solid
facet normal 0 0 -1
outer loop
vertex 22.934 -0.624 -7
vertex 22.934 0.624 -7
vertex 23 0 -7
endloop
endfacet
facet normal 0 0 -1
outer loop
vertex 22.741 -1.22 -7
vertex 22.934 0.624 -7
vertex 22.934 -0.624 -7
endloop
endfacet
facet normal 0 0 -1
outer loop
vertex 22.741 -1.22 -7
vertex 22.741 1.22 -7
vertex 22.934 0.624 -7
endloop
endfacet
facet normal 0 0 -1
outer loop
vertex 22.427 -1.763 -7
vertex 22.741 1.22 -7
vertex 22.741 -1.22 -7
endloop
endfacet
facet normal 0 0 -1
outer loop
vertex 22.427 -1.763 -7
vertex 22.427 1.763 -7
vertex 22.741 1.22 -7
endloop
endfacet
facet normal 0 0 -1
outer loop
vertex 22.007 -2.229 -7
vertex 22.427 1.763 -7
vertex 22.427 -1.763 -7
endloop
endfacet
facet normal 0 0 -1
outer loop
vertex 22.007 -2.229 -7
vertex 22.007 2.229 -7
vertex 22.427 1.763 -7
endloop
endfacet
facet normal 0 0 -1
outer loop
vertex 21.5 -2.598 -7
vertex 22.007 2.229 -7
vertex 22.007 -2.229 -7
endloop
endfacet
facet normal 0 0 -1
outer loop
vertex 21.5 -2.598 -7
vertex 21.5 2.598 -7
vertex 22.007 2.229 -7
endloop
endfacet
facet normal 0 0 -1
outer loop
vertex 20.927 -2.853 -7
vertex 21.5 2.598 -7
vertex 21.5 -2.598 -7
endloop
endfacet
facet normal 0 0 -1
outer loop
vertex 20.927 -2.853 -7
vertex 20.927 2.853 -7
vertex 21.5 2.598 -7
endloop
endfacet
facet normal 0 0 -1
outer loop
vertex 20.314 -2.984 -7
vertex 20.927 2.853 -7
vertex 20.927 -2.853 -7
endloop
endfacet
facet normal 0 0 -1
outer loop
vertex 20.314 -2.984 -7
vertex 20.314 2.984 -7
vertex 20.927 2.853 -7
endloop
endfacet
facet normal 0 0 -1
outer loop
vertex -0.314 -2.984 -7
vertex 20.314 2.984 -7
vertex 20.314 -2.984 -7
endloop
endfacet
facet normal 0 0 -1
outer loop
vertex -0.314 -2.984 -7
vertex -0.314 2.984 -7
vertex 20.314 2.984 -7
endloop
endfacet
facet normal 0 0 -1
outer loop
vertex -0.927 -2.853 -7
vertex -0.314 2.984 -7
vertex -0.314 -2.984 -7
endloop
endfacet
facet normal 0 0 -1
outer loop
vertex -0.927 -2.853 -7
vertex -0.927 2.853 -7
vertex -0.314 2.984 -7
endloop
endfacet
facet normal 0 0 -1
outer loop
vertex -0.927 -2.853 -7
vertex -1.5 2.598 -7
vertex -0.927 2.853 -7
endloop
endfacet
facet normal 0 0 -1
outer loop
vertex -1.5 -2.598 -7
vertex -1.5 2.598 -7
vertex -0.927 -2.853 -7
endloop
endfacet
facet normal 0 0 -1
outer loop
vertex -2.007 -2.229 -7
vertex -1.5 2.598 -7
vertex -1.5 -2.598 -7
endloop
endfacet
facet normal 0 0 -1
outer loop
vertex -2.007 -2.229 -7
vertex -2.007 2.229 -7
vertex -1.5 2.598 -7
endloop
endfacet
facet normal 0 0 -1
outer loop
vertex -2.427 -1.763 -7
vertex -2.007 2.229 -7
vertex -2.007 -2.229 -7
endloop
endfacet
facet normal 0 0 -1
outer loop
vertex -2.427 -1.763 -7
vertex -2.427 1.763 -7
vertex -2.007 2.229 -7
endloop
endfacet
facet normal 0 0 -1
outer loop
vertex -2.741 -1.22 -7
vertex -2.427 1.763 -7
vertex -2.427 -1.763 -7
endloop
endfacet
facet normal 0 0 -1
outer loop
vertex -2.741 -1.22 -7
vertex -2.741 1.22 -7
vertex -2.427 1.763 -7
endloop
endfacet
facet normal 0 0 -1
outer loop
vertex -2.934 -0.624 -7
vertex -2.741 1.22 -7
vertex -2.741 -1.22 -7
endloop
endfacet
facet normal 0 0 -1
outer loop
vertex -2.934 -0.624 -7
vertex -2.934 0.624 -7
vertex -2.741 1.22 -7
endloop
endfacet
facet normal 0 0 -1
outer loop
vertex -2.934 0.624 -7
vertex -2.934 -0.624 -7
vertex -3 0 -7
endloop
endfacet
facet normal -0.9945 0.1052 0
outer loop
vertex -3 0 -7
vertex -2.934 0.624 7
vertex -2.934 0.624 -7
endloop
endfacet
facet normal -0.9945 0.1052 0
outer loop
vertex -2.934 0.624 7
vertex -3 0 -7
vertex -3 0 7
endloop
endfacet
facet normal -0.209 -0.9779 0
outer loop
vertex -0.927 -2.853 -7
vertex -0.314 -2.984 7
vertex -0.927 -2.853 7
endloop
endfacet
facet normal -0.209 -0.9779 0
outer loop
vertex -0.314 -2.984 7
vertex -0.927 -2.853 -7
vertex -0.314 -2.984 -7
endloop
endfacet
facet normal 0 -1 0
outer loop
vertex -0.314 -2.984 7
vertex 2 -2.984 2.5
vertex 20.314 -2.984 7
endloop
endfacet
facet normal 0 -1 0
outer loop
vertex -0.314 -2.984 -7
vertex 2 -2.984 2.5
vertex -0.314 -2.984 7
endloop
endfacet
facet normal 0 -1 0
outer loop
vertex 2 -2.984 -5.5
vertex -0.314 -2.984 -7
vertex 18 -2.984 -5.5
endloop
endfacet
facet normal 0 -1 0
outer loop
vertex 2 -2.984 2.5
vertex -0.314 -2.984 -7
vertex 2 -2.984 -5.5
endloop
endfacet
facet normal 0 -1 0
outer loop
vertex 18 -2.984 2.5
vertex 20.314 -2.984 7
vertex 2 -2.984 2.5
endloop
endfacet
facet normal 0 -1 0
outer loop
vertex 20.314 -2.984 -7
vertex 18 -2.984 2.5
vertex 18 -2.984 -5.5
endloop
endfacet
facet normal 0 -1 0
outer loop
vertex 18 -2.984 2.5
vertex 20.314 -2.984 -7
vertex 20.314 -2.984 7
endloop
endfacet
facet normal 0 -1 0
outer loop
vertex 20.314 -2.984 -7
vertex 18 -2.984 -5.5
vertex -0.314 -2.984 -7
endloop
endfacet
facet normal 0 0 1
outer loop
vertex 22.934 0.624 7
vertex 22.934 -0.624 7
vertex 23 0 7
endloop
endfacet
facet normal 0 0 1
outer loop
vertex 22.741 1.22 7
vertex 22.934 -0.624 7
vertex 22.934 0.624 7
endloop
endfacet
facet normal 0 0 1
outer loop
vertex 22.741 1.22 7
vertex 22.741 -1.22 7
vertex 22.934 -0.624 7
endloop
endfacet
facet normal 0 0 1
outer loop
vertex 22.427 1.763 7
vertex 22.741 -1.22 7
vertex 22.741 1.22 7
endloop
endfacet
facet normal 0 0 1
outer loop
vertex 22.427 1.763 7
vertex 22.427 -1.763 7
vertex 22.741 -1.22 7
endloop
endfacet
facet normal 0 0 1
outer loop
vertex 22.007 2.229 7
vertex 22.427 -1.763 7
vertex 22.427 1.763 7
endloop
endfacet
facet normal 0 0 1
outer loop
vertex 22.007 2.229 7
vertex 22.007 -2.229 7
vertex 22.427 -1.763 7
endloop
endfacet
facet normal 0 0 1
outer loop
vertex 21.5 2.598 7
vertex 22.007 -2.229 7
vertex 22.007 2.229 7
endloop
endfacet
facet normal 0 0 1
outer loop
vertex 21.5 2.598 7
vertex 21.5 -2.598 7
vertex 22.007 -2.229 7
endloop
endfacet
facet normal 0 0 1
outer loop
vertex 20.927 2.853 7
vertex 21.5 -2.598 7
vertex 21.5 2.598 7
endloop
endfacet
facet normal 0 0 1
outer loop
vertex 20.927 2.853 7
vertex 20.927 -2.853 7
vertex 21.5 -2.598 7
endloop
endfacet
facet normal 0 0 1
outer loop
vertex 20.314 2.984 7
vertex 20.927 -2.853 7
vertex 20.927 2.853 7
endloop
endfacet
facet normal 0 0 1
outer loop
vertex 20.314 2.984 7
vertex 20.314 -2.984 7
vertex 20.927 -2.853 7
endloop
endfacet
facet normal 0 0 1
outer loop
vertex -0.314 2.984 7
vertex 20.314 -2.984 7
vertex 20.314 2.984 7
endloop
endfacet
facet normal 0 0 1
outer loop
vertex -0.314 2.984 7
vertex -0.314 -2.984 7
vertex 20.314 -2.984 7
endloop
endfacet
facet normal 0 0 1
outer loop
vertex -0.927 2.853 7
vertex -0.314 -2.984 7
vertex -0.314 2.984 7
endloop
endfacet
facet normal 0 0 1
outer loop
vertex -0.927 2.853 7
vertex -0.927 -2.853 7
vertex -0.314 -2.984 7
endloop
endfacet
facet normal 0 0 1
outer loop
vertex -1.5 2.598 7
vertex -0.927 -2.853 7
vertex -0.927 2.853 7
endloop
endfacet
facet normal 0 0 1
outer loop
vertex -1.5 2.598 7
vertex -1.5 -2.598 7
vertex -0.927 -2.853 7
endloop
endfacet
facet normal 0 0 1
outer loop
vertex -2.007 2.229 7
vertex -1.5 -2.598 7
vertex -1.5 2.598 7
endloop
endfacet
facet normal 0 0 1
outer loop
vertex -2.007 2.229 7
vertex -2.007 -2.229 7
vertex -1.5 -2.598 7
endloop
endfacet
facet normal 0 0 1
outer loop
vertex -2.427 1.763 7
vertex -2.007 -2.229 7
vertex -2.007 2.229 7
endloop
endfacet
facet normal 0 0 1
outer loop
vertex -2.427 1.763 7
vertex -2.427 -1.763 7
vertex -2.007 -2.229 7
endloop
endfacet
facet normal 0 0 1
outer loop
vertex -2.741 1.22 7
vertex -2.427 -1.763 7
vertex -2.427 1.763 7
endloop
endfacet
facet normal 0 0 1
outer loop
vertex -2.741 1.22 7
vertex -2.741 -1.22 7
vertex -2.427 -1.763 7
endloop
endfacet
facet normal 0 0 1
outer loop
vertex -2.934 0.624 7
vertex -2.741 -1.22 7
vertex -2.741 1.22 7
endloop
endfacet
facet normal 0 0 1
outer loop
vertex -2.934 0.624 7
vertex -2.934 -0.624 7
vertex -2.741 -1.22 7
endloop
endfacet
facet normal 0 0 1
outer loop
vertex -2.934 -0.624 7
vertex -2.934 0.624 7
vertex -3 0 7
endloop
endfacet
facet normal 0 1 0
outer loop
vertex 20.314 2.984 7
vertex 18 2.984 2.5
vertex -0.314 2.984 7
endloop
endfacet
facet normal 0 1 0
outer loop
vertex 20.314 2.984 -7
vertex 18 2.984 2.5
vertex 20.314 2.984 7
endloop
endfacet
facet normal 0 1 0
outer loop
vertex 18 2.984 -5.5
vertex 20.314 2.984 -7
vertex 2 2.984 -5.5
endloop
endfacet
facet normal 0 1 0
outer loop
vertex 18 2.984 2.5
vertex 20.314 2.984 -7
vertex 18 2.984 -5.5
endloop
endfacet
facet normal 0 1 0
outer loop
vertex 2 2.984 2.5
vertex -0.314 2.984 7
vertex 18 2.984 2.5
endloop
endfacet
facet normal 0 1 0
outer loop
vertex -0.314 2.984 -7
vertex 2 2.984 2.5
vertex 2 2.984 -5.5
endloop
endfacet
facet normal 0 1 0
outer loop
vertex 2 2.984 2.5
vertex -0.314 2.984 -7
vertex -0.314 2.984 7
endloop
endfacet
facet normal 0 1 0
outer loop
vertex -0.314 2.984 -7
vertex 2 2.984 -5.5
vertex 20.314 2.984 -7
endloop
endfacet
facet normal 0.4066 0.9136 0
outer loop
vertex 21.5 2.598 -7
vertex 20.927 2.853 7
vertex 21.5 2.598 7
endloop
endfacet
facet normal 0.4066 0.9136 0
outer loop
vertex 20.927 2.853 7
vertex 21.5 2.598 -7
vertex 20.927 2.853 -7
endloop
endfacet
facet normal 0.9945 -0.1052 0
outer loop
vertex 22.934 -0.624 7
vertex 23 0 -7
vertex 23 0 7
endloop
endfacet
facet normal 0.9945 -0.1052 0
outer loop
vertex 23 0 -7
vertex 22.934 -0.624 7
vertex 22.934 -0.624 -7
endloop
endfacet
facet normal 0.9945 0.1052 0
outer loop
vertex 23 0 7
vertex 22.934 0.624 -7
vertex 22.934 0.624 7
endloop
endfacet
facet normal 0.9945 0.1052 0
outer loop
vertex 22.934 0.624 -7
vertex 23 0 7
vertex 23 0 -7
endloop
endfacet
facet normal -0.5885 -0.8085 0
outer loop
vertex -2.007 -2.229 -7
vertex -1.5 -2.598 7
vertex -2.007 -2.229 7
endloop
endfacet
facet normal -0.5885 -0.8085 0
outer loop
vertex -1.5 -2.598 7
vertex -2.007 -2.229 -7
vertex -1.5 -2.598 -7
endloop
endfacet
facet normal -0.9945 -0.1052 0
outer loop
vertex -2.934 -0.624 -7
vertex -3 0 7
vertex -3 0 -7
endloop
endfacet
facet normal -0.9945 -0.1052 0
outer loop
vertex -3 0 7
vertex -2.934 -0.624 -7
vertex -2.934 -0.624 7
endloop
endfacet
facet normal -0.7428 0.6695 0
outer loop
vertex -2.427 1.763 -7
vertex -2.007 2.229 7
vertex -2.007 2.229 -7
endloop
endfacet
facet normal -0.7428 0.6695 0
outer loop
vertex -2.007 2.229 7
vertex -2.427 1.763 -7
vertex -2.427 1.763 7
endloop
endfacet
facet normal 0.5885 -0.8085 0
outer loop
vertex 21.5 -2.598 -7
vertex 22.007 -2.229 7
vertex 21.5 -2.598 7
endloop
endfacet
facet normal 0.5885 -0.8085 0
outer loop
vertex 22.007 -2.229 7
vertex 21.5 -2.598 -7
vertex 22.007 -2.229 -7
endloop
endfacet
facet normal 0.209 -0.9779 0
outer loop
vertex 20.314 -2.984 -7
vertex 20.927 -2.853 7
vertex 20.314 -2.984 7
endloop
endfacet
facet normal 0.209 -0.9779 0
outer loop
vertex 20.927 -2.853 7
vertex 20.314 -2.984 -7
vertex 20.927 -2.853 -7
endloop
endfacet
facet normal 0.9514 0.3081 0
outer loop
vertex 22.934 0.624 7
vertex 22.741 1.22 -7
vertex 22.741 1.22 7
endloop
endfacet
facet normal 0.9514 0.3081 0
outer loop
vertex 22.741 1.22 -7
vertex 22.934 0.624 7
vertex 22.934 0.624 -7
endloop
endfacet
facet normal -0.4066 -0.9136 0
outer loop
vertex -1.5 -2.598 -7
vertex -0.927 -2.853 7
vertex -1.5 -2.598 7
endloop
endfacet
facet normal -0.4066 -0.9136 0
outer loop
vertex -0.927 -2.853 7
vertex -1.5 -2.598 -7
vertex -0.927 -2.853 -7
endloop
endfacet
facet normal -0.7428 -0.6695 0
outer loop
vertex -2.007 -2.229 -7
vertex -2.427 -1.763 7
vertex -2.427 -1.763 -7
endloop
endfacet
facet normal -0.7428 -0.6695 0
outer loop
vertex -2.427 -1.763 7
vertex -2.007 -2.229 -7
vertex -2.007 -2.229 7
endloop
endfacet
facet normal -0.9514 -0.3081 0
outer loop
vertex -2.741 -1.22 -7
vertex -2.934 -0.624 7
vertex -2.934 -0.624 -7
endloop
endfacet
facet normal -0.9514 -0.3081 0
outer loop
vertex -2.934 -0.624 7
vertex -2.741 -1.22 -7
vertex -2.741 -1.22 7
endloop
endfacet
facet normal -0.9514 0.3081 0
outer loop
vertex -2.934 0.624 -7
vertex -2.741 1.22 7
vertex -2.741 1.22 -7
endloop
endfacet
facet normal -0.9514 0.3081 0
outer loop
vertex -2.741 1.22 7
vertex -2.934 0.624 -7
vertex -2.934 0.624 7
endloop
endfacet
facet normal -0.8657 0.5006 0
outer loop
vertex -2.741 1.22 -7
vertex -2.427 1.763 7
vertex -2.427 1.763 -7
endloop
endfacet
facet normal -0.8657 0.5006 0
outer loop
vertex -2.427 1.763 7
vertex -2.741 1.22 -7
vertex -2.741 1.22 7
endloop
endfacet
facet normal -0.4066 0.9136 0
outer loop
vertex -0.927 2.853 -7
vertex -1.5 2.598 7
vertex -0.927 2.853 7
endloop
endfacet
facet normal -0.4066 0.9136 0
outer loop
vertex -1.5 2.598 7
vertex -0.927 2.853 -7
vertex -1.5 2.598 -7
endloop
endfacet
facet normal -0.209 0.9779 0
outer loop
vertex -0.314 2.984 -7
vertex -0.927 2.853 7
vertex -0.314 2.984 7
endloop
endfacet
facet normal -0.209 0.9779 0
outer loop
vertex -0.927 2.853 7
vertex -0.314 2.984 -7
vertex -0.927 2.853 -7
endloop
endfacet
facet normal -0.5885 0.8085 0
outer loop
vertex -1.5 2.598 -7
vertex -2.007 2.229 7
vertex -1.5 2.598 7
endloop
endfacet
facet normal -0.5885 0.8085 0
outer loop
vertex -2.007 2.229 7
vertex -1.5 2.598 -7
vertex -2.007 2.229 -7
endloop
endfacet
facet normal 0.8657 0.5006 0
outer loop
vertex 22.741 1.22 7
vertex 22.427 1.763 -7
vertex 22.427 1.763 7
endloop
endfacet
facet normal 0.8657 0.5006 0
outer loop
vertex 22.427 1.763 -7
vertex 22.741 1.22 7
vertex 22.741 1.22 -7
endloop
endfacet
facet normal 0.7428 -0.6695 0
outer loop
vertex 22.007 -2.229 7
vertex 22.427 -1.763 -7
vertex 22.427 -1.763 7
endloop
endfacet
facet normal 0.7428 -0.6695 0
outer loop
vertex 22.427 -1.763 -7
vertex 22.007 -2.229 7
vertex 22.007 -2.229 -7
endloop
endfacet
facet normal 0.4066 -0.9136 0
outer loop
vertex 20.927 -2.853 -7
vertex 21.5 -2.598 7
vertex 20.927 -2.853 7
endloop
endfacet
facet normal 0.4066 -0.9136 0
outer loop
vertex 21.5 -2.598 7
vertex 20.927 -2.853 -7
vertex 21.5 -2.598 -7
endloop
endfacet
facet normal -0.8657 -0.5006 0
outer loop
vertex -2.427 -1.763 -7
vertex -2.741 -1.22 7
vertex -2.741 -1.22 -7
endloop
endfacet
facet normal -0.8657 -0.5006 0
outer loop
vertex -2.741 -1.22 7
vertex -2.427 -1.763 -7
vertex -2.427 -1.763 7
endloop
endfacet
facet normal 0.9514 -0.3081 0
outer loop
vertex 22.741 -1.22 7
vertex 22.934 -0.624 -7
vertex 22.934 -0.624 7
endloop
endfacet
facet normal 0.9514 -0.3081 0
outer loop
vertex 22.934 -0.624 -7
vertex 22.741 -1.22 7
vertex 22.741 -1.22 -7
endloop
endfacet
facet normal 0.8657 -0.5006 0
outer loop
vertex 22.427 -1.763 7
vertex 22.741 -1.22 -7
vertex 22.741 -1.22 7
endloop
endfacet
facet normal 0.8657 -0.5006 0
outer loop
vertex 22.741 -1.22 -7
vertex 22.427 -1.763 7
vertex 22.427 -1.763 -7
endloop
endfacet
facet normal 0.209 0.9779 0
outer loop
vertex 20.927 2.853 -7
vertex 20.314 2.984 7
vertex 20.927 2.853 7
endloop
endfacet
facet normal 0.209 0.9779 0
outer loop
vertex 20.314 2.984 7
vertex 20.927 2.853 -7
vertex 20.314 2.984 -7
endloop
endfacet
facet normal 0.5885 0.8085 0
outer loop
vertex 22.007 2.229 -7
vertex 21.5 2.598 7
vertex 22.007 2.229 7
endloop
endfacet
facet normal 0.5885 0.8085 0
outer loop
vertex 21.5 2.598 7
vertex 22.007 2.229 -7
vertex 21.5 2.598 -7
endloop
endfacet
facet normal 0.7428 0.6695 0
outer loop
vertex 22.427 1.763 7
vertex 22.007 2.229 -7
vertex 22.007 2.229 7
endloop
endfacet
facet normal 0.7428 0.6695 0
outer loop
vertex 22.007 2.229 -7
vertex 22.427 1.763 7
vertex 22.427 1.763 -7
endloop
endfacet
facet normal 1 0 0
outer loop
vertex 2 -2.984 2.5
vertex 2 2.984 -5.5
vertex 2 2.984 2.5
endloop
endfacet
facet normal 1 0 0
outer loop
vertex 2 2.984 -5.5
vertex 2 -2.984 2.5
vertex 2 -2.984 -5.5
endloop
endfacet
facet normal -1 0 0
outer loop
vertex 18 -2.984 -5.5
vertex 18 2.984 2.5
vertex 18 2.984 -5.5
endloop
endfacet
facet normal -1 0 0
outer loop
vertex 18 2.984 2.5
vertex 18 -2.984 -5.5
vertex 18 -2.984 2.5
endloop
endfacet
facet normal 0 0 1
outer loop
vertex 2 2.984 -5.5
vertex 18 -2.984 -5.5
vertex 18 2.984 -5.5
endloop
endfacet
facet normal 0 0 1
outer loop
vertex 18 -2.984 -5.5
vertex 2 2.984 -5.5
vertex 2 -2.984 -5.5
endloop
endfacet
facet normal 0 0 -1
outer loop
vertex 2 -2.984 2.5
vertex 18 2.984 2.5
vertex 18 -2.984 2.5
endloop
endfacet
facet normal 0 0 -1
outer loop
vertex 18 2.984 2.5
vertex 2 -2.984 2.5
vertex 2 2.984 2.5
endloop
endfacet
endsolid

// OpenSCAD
$fn=30;
height=10;
radius=3;
difference(){
    hull(){
      cylinder(r=radius,h=height+4, center=true);
      translate([20,0,0])cylinder(r=radius,h=height+4, center=true);
  }
  rotate([90,0,0]) translate([10,-1.5,0])cube([height+6,height-2,999],center=true);
}
